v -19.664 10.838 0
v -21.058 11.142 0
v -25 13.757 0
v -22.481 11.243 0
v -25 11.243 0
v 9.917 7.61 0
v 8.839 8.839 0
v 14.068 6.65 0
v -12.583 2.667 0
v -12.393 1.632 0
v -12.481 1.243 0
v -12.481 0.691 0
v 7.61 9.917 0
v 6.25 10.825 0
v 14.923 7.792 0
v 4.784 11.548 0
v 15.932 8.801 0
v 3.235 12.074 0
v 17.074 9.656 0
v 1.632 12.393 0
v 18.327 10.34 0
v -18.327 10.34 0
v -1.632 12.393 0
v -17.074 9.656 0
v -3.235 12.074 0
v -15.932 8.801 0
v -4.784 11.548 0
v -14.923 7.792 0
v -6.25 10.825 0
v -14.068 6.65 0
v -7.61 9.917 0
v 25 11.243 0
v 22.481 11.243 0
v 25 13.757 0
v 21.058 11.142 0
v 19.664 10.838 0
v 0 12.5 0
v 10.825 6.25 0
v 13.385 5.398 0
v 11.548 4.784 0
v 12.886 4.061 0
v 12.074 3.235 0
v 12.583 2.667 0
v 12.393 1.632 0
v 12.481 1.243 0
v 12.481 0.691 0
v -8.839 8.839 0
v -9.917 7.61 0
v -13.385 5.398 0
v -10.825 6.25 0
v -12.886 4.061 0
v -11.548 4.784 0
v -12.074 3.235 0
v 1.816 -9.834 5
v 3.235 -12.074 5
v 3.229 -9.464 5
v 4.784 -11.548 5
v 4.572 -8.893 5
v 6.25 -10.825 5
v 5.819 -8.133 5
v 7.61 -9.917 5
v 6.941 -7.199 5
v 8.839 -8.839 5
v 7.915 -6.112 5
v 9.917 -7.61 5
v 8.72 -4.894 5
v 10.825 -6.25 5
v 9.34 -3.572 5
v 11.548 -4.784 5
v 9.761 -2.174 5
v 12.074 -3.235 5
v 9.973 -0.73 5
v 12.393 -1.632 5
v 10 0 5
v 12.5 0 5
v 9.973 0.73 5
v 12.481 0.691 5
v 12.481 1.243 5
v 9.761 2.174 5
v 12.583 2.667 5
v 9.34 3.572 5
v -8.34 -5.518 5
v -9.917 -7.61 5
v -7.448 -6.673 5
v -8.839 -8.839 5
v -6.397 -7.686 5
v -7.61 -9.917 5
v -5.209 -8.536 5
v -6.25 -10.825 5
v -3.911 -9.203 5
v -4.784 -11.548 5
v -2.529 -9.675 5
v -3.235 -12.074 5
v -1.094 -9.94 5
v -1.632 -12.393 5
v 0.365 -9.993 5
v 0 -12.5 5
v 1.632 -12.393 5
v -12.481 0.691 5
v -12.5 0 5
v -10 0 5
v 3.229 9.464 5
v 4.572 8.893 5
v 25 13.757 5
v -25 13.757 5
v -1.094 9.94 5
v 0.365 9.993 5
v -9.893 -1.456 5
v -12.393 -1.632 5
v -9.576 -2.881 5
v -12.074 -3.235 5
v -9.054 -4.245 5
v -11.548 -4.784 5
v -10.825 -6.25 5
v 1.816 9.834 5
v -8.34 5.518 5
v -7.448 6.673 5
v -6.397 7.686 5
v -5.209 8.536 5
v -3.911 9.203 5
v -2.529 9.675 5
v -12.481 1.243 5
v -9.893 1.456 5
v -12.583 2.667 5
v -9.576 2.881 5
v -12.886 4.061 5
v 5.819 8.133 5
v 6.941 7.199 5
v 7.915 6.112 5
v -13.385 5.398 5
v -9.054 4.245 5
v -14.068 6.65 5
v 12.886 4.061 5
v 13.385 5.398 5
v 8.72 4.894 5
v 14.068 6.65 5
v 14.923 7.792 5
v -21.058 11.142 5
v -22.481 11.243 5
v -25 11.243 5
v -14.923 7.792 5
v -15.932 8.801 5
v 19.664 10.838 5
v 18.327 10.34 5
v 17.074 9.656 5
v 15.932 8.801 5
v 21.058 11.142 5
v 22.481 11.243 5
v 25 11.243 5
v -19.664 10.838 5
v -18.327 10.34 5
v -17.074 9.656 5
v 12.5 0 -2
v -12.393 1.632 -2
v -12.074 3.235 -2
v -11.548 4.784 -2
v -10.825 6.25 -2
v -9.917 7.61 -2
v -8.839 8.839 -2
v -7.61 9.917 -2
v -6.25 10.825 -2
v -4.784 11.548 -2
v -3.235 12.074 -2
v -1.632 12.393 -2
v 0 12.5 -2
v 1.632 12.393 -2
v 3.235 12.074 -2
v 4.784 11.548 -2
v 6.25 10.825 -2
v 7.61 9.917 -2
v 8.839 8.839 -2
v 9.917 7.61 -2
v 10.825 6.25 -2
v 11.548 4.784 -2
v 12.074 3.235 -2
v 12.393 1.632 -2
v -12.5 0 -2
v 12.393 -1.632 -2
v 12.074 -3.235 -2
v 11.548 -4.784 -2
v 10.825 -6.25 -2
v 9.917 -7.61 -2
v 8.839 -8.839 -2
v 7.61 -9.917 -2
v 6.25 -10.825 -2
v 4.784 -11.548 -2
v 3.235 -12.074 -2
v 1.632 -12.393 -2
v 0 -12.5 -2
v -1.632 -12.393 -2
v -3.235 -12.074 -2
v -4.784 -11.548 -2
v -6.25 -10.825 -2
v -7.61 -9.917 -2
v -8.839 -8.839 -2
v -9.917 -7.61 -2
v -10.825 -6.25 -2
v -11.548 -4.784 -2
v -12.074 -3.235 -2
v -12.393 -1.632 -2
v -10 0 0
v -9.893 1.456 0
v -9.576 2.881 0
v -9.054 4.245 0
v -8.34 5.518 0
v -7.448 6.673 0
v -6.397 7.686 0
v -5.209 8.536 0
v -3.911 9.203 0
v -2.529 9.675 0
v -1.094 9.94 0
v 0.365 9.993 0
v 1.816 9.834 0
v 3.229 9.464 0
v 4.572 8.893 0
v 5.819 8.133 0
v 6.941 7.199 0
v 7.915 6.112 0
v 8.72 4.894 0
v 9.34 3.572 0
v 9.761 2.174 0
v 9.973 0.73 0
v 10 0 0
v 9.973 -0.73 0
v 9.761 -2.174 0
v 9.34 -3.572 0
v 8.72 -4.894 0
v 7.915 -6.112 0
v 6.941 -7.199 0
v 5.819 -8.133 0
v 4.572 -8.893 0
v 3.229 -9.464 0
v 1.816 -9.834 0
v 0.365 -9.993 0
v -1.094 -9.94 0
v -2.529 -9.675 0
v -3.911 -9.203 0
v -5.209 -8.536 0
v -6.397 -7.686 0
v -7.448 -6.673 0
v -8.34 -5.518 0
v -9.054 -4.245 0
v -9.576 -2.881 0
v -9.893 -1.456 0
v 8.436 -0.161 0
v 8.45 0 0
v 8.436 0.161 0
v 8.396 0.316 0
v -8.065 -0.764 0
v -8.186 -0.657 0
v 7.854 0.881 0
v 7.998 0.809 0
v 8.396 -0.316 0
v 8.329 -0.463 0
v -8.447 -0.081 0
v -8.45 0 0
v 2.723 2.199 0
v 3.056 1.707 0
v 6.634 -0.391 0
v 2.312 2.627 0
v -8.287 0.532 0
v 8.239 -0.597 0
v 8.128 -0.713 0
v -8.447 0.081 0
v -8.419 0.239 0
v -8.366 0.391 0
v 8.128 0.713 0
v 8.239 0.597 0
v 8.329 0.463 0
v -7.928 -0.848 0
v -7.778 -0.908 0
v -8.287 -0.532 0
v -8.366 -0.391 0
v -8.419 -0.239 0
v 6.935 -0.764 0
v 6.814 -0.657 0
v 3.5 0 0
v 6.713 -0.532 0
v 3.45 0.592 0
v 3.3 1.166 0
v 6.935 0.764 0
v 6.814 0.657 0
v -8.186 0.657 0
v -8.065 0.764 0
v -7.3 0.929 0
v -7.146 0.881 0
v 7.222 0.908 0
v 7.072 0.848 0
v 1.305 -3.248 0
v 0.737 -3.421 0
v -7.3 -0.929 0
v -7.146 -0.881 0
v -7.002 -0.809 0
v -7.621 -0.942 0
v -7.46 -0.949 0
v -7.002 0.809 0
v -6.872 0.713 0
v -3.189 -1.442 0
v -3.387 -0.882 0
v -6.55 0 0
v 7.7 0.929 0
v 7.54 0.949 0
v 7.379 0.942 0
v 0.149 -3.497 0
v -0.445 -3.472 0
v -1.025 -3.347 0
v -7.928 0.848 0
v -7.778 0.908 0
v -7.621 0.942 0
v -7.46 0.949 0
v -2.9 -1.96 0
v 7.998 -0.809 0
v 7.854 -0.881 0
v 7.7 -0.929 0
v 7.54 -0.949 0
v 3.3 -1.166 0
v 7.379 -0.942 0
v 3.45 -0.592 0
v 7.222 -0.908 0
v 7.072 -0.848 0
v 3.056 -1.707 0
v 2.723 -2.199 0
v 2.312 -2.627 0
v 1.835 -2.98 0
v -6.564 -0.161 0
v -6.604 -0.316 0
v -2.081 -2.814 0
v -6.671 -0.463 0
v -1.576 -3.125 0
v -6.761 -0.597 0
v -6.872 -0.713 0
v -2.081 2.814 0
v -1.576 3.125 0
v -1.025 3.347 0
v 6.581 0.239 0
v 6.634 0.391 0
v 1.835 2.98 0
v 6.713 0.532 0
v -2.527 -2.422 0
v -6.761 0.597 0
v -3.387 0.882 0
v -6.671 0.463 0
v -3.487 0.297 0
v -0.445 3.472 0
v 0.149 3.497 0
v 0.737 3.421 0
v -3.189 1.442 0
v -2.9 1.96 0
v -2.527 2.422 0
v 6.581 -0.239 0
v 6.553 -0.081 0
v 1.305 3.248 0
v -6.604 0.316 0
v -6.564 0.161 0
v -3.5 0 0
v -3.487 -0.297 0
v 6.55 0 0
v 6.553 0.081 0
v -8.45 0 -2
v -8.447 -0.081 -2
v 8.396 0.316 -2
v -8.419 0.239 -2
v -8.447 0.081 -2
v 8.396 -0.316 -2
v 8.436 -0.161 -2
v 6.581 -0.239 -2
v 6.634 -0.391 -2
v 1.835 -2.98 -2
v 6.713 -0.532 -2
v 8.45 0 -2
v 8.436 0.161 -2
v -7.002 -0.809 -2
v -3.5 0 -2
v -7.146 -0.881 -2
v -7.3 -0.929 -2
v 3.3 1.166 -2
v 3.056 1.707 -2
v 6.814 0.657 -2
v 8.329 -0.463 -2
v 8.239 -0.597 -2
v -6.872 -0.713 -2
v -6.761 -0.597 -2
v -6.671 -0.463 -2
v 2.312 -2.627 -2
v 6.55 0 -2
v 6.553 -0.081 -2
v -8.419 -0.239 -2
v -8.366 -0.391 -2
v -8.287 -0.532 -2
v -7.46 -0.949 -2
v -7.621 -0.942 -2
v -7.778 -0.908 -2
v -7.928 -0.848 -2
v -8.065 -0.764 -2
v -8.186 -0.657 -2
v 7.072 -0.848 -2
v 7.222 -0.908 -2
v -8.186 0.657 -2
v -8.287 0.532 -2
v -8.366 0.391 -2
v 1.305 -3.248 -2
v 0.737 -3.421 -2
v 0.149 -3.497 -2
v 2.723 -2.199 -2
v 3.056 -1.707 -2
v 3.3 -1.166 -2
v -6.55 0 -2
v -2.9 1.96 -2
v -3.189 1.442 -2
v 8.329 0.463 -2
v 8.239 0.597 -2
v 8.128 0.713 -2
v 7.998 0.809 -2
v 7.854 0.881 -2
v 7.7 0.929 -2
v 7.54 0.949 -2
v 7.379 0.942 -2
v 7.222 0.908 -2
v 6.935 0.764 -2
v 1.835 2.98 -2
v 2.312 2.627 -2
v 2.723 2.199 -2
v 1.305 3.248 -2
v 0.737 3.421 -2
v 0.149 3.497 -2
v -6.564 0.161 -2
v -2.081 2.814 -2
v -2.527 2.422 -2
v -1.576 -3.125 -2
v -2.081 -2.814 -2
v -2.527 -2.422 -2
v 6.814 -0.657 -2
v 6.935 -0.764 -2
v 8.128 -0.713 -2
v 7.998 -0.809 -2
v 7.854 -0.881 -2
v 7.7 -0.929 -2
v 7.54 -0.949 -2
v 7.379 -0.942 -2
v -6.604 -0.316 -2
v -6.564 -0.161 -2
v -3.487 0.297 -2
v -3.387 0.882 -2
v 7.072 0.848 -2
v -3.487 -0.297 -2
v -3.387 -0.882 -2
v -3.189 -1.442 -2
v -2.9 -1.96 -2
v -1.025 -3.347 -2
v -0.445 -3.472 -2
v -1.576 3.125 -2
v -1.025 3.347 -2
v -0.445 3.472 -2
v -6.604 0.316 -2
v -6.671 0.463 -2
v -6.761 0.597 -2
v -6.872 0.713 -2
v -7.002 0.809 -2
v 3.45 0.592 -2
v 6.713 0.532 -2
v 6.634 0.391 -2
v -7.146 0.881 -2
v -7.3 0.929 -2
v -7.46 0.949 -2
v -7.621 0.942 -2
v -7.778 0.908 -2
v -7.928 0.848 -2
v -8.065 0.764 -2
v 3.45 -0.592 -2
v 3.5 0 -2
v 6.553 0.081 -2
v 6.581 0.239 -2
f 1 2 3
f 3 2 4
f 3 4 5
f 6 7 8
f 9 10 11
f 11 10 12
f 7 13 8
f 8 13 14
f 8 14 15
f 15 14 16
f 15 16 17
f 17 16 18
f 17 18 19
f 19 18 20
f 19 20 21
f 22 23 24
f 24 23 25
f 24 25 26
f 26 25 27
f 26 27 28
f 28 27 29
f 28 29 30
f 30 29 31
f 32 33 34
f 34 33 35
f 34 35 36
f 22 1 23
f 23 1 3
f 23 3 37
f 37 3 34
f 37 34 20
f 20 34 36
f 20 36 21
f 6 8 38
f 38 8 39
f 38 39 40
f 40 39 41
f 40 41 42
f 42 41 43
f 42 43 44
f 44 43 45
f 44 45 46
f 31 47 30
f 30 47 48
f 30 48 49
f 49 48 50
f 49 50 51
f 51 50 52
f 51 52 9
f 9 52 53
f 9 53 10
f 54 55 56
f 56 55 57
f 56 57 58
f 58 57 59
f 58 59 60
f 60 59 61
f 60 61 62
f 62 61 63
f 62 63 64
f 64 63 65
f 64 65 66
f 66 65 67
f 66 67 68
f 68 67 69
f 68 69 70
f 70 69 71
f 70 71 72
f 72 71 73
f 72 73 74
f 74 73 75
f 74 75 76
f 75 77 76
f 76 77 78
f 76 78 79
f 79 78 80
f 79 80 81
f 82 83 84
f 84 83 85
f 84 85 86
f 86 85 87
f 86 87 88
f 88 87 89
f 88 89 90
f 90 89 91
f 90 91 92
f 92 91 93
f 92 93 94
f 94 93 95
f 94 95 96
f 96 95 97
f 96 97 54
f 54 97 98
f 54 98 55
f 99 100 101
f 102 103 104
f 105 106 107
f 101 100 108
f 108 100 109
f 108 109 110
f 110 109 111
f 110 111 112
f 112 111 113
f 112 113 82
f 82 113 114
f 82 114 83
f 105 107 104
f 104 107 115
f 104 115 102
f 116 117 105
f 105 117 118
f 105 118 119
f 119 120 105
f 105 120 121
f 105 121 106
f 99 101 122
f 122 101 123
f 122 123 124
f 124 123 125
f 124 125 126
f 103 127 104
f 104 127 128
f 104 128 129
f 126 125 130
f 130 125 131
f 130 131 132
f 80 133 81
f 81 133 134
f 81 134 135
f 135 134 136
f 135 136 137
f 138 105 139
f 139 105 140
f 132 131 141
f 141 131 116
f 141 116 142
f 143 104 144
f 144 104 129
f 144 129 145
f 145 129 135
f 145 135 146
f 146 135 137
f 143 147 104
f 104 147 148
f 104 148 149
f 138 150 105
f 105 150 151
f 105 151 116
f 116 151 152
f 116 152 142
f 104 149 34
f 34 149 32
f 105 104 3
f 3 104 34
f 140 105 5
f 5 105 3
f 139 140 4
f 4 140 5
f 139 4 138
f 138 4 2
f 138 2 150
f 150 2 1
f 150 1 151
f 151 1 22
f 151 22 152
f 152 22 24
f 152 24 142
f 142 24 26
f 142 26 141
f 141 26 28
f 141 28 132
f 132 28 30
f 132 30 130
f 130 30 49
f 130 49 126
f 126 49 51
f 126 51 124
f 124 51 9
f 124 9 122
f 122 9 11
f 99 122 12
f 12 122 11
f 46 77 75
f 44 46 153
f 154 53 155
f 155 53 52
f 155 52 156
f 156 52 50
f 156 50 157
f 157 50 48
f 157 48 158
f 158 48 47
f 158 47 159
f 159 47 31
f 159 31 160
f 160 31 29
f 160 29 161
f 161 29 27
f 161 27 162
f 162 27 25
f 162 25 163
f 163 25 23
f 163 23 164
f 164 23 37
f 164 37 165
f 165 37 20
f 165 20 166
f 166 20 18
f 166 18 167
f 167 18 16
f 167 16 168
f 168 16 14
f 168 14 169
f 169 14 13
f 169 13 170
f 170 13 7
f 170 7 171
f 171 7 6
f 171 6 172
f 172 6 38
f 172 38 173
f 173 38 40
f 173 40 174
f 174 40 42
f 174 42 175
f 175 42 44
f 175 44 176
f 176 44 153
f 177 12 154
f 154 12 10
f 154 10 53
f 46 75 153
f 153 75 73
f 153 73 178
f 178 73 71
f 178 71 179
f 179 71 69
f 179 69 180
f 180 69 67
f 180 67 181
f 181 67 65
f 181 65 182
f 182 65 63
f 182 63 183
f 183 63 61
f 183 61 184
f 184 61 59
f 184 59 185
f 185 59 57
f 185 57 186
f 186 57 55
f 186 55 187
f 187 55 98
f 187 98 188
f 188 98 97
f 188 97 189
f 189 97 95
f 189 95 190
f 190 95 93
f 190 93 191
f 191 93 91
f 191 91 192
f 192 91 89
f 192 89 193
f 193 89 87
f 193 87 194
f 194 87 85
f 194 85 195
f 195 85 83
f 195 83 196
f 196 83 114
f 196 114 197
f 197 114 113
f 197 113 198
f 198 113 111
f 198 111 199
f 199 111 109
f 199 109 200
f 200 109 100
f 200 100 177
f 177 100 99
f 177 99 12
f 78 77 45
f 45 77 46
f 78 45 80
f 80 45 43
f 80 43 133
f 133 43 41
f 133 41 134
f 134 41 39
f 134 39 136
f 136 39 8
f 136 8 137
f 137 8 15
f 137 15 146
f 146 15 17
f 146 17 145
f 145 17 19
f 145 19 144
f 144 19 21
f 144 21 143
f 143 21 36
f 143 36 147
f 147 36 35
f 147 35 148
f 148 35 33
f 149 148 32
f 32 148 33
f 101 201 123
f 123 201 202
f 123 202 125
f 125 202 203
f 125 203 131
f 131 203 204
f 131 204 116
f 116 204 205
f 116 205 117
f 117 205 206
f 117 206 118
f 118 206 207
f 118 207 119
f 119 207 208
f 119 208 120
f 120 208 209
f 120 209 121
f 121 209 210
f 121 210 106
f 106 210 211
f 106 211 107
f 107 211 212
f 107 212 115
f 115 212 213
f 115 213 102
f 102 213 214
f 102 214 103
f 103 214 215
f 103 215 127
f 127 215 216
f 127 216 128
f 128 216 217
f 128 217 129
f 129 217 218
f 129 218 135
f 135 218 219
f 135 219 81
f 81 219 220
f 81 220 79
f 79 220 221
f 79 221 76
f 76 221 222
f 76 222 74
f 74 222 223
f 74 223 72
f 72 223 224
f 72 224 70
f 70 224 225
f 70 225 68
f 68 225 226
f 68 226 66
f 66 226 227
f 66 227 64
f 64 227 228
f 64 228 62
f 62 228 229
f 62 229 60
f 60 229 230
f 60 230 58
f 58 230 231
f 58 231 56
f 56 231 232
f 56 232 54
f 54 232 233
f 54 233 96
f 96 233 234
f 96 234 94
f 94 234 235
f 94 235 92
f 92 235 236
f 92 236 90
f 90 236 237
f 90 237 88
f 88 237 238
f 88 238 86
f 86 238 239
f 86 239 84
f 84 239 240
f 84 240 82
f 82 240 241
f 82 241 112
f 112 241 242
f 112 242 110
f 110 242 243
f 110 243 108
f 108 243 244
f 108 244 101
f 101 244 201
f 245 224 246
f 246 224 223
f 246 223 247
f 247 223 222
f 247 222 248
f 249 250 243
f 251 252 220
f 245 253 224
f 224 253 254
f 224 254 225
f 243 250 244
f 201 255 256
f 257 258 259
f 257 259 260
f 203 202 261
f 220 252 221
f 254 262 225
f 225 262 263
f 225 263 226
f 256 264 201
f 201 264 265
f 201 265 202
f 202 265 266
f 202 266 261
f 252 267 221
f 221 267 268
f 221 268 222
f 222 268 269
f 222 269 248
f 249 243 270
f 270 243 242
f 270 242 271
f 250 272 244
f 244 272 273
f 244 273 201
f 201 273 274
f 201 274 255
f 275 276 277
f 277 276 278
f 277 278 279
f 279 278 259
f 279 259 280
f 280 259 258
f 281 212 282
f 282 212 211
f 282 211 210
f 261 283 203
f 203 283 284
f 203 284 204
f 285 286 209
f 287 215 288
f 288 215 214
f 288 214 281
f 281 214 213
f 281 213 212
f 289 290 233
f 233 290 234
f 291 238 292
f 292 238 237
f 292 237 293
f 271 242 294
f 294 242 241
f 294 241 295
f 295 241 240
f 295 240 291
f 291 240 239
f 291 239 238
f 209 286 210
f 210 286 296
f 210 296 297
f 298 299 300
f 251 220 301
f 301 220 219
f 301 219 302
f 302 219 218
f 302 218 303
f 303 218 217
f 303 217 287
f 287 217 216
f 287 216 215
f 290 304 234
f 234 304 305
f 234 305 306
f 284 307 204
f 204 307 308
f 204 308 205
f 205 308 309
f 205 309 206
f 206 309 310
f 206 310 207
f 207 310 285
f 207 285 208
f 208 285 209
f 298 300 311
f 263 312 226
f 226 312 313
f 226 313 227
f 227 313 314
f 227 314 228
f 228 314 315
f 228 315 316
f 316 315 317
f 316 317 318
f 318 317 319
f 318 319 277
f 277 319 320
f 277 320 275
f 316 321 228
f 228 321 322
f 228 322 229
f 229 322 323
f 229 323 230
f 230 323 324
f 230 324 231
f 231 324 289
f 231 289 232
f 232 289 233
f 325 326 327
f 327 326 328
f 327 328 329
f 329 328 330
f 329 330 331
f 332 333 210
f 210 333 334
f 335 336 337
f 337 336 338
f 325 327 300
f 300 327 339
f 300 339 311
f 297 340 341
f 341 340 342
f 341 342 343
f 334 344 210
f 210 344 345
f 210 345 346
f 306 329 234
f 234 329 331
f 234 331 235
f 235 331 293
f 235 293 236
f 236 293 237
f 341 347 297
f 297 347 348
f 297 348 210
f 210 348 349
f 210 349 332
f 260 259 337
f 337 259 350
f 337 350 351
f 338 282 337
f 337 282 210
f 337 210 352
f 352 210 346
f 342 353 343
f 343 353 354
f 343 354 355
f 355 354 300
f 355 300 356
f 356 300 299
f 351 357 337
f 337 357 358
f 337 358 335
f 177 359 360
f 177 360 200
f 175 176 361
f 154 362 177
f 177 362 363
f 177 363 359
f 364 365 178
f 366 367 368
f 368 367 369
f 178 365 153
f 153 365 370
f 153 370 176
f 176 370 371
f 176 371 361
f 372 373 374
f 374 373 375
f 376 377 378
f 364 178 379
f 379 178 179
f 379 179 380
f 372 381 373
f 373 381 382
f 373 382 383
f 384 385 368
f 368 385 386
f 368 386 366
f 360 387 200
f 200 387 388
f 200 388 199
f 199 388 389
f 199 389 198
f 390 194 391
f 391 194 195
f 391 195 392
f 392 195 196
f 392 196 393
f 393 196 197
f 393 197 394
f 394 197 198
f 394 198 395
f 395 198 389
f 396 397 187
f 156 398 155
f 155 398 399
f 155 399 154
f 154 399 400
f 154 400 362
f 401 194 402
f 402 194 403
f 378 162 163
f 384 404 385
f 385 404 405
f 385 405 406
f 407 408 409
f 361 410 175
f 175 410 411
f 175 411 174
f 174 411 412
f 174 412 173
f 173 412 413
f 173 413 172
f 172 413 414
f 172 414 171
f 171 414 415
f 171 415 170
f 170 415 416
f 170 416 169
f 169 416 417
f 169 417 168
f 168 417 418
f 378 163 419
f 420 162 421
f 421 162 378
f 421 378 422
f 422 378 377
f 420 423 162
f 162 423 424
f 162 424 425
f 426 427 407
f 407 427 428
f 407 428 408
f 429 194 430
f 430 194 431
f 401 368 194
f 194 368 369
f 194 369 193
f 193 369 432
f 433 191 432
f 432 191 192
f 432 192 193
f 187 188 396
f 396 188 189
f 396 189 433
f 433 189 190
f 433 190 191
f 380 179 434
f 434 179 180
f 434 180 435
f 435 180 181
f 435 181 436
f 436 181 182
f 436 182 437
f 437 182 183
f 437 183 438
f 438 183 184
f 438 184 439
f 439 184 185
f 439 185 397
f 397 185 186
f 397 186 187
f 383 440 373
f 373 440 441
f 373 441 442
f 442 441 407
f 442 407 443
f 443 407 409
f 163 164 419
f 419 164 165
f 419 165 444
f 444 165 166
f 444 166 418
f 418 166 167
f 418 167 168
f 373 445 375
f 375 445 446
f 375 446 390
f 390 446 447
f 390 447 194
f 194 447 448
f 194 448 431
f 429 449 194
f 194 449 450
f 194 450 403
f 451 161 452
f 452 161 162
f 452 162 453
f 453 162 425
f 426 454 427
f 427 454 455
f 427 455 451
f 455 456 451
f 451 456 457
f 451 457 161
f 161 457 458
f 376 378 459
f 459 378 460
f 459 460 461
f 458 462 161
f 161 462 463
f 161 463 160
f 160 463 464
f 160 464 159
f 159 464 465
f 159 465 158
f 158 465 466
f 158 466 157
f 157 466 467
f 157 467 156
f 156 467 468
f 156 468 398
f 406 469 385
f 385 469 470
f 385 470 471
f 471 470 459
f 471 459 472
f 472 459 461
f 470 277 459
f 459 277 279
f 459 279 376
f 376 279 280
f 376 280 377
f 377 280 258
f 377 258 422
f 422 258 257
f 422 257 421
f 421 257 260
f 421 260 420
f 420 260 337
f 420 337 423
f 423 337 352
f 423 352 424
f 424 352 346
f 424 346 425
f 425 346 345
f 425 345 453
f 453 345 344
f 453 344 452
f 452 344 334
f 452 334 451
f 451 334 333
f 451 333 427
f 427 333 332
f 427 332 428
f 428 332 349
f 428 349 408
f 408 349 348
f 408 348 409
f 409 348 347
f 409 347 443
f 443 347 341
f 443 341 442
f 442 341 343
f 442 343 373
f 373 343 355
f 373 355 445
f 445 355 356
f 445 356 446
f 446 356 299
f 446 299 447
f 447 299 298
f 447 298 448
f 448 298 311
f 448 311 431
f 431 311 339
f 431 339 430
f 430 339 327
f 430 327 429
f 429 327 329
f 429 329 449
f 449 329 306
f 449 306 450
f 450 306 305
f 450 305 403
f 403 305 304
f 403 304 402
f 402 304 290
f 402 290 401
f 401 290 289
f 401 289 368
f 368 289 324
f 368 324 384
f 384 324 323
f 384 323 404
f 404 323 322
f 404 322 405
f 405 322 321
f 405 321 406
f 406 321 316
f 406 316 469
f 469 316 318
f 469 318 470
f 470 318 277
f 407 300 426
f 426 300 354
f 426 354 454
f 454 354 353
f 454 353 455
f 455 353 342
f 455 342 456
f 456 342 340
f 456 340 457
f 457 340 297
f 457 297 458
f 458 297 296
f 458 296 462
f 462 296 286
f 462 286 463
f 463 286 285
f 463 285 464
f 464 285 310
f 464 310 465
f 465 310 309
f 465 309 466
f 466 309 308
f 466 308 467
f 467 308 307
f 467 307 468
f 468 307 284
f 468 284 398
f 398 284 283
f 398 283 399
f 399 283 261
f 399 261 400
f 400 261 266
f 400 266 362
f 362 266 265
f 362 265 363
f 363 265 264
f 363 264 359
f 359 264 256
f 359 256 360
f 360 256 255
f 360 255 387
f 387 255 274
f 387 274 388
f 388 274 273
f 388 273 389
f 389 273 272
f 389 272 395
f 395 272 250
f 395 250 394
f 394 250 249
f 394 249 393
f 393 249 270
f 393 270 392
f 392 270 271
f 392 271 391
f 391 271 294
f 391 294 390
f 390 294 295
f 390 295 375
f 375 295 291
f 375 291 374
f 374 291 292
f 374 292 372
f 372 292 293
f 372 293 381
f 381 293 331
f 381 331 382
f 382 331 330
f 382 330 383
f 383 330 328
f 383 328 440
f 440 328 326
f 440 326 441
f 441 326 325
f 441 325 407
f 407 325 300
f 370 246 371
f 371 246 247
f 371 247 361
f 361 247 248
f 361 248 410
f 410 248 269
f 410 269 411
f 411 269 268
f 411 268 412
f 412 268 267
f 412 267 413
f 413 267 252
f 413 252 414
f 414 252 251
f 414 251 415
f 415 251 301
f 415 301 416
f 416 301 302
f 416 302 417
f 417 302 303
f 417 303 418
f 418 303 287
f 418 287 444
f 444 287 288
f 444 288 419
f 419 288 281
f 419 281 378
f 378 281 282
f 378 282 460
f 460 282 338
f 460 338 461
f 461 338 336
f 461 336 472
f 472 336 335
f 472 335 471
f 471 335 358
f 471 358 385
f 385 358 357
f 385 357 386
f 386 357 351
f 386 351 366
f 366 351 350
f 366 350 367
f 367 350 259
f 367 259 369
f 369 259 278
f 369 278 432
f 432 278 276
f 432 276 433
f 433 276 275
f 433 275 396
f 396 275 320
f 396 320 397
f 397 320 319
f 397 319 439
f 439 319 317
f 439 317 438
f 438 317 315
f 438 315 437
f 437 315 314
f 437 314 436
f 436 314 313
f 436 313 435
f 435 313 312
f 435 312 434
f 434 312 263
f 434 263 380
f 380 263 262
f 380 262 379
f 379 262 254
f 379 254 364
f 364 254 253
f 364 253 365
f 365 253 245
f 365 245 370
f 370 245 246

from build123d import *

# Parameters (mm, degrees)
SKETCH1_R           = 10
BOSS_EXTRUDE1_DEPTH = 5
BOSS_EXTRUDE3_START = 2
SKETCH3_R           = 12.5
SKETCH3_R_2         = 3.5
SKETCH3_R_3         = 0.95
BOSS_EXTRUDE3_DEPTH = 2


with BuildPart() as part:
    # Sketch1 → Boss-Extrude1 (new body)
    with BuildSketch(Plane.XY):
        with BuildLine():
            Line((-25, 13.756613757), (-25, 11.243386243))
            Line((-25, 11.243386243), (-22.480898871, 11.243386243))
            ThreePointArc((-22.480898871, 11.243386243), (-15.409831059, 8.314454055), (-12.480898871, 1.243386243))
            Line((-12.480898871, 1.243386243), (-12.480898871, 0.690770135))
            ThreePointArc((-12.480898871, 0.690770135), (0, -12.5), (12.480898871, 0.690770135))
            Line((12.480898871, 0.690770135), (12.480898871, 1.243386243))
            ThreePointArc((12.480898871, 1.243386243), (15.409831059, 8.314454055), (22.480898871, 11.243386243))
            Line((22.480898871, 11.243386243), (25, 11.243386243))
            Line((25, 11.243386243), (25, 13.756613757))
            Line((25, 13.756613757), (-25, 13.756613757))
        make_face()
        Circle(SKETCH1_R, mode=Mode.SUBTRACT)
    extrude(amount=BOSS_EXTRUDE1_DEPTH)

    # Sketch3 → Boss-Extrude3 (add)
    with BuildSketch(Plane(origin=(0, 0, 0), x_dir=(-1, 0, 0), z_dir=(0, 0, -1)).offset(BOSS_EXTRUDE3_START)):
        Circle(SKETCH3_R)
        Circle(SKETCH3_R_2, mode=Mode.SUBTRACT)
        with Locations((7.5, 0)):
            Circle(SKETCH3_R_3, mode=Mode.SUBTRACT)
        with Locations((-7.5, 0)):
            Circle(SKETCH3_R_3, mode=Mode.SUBTRACT)
    extrude(amount=-BOSS_EXTRUDE3_DEPTH)


solid = part.part
